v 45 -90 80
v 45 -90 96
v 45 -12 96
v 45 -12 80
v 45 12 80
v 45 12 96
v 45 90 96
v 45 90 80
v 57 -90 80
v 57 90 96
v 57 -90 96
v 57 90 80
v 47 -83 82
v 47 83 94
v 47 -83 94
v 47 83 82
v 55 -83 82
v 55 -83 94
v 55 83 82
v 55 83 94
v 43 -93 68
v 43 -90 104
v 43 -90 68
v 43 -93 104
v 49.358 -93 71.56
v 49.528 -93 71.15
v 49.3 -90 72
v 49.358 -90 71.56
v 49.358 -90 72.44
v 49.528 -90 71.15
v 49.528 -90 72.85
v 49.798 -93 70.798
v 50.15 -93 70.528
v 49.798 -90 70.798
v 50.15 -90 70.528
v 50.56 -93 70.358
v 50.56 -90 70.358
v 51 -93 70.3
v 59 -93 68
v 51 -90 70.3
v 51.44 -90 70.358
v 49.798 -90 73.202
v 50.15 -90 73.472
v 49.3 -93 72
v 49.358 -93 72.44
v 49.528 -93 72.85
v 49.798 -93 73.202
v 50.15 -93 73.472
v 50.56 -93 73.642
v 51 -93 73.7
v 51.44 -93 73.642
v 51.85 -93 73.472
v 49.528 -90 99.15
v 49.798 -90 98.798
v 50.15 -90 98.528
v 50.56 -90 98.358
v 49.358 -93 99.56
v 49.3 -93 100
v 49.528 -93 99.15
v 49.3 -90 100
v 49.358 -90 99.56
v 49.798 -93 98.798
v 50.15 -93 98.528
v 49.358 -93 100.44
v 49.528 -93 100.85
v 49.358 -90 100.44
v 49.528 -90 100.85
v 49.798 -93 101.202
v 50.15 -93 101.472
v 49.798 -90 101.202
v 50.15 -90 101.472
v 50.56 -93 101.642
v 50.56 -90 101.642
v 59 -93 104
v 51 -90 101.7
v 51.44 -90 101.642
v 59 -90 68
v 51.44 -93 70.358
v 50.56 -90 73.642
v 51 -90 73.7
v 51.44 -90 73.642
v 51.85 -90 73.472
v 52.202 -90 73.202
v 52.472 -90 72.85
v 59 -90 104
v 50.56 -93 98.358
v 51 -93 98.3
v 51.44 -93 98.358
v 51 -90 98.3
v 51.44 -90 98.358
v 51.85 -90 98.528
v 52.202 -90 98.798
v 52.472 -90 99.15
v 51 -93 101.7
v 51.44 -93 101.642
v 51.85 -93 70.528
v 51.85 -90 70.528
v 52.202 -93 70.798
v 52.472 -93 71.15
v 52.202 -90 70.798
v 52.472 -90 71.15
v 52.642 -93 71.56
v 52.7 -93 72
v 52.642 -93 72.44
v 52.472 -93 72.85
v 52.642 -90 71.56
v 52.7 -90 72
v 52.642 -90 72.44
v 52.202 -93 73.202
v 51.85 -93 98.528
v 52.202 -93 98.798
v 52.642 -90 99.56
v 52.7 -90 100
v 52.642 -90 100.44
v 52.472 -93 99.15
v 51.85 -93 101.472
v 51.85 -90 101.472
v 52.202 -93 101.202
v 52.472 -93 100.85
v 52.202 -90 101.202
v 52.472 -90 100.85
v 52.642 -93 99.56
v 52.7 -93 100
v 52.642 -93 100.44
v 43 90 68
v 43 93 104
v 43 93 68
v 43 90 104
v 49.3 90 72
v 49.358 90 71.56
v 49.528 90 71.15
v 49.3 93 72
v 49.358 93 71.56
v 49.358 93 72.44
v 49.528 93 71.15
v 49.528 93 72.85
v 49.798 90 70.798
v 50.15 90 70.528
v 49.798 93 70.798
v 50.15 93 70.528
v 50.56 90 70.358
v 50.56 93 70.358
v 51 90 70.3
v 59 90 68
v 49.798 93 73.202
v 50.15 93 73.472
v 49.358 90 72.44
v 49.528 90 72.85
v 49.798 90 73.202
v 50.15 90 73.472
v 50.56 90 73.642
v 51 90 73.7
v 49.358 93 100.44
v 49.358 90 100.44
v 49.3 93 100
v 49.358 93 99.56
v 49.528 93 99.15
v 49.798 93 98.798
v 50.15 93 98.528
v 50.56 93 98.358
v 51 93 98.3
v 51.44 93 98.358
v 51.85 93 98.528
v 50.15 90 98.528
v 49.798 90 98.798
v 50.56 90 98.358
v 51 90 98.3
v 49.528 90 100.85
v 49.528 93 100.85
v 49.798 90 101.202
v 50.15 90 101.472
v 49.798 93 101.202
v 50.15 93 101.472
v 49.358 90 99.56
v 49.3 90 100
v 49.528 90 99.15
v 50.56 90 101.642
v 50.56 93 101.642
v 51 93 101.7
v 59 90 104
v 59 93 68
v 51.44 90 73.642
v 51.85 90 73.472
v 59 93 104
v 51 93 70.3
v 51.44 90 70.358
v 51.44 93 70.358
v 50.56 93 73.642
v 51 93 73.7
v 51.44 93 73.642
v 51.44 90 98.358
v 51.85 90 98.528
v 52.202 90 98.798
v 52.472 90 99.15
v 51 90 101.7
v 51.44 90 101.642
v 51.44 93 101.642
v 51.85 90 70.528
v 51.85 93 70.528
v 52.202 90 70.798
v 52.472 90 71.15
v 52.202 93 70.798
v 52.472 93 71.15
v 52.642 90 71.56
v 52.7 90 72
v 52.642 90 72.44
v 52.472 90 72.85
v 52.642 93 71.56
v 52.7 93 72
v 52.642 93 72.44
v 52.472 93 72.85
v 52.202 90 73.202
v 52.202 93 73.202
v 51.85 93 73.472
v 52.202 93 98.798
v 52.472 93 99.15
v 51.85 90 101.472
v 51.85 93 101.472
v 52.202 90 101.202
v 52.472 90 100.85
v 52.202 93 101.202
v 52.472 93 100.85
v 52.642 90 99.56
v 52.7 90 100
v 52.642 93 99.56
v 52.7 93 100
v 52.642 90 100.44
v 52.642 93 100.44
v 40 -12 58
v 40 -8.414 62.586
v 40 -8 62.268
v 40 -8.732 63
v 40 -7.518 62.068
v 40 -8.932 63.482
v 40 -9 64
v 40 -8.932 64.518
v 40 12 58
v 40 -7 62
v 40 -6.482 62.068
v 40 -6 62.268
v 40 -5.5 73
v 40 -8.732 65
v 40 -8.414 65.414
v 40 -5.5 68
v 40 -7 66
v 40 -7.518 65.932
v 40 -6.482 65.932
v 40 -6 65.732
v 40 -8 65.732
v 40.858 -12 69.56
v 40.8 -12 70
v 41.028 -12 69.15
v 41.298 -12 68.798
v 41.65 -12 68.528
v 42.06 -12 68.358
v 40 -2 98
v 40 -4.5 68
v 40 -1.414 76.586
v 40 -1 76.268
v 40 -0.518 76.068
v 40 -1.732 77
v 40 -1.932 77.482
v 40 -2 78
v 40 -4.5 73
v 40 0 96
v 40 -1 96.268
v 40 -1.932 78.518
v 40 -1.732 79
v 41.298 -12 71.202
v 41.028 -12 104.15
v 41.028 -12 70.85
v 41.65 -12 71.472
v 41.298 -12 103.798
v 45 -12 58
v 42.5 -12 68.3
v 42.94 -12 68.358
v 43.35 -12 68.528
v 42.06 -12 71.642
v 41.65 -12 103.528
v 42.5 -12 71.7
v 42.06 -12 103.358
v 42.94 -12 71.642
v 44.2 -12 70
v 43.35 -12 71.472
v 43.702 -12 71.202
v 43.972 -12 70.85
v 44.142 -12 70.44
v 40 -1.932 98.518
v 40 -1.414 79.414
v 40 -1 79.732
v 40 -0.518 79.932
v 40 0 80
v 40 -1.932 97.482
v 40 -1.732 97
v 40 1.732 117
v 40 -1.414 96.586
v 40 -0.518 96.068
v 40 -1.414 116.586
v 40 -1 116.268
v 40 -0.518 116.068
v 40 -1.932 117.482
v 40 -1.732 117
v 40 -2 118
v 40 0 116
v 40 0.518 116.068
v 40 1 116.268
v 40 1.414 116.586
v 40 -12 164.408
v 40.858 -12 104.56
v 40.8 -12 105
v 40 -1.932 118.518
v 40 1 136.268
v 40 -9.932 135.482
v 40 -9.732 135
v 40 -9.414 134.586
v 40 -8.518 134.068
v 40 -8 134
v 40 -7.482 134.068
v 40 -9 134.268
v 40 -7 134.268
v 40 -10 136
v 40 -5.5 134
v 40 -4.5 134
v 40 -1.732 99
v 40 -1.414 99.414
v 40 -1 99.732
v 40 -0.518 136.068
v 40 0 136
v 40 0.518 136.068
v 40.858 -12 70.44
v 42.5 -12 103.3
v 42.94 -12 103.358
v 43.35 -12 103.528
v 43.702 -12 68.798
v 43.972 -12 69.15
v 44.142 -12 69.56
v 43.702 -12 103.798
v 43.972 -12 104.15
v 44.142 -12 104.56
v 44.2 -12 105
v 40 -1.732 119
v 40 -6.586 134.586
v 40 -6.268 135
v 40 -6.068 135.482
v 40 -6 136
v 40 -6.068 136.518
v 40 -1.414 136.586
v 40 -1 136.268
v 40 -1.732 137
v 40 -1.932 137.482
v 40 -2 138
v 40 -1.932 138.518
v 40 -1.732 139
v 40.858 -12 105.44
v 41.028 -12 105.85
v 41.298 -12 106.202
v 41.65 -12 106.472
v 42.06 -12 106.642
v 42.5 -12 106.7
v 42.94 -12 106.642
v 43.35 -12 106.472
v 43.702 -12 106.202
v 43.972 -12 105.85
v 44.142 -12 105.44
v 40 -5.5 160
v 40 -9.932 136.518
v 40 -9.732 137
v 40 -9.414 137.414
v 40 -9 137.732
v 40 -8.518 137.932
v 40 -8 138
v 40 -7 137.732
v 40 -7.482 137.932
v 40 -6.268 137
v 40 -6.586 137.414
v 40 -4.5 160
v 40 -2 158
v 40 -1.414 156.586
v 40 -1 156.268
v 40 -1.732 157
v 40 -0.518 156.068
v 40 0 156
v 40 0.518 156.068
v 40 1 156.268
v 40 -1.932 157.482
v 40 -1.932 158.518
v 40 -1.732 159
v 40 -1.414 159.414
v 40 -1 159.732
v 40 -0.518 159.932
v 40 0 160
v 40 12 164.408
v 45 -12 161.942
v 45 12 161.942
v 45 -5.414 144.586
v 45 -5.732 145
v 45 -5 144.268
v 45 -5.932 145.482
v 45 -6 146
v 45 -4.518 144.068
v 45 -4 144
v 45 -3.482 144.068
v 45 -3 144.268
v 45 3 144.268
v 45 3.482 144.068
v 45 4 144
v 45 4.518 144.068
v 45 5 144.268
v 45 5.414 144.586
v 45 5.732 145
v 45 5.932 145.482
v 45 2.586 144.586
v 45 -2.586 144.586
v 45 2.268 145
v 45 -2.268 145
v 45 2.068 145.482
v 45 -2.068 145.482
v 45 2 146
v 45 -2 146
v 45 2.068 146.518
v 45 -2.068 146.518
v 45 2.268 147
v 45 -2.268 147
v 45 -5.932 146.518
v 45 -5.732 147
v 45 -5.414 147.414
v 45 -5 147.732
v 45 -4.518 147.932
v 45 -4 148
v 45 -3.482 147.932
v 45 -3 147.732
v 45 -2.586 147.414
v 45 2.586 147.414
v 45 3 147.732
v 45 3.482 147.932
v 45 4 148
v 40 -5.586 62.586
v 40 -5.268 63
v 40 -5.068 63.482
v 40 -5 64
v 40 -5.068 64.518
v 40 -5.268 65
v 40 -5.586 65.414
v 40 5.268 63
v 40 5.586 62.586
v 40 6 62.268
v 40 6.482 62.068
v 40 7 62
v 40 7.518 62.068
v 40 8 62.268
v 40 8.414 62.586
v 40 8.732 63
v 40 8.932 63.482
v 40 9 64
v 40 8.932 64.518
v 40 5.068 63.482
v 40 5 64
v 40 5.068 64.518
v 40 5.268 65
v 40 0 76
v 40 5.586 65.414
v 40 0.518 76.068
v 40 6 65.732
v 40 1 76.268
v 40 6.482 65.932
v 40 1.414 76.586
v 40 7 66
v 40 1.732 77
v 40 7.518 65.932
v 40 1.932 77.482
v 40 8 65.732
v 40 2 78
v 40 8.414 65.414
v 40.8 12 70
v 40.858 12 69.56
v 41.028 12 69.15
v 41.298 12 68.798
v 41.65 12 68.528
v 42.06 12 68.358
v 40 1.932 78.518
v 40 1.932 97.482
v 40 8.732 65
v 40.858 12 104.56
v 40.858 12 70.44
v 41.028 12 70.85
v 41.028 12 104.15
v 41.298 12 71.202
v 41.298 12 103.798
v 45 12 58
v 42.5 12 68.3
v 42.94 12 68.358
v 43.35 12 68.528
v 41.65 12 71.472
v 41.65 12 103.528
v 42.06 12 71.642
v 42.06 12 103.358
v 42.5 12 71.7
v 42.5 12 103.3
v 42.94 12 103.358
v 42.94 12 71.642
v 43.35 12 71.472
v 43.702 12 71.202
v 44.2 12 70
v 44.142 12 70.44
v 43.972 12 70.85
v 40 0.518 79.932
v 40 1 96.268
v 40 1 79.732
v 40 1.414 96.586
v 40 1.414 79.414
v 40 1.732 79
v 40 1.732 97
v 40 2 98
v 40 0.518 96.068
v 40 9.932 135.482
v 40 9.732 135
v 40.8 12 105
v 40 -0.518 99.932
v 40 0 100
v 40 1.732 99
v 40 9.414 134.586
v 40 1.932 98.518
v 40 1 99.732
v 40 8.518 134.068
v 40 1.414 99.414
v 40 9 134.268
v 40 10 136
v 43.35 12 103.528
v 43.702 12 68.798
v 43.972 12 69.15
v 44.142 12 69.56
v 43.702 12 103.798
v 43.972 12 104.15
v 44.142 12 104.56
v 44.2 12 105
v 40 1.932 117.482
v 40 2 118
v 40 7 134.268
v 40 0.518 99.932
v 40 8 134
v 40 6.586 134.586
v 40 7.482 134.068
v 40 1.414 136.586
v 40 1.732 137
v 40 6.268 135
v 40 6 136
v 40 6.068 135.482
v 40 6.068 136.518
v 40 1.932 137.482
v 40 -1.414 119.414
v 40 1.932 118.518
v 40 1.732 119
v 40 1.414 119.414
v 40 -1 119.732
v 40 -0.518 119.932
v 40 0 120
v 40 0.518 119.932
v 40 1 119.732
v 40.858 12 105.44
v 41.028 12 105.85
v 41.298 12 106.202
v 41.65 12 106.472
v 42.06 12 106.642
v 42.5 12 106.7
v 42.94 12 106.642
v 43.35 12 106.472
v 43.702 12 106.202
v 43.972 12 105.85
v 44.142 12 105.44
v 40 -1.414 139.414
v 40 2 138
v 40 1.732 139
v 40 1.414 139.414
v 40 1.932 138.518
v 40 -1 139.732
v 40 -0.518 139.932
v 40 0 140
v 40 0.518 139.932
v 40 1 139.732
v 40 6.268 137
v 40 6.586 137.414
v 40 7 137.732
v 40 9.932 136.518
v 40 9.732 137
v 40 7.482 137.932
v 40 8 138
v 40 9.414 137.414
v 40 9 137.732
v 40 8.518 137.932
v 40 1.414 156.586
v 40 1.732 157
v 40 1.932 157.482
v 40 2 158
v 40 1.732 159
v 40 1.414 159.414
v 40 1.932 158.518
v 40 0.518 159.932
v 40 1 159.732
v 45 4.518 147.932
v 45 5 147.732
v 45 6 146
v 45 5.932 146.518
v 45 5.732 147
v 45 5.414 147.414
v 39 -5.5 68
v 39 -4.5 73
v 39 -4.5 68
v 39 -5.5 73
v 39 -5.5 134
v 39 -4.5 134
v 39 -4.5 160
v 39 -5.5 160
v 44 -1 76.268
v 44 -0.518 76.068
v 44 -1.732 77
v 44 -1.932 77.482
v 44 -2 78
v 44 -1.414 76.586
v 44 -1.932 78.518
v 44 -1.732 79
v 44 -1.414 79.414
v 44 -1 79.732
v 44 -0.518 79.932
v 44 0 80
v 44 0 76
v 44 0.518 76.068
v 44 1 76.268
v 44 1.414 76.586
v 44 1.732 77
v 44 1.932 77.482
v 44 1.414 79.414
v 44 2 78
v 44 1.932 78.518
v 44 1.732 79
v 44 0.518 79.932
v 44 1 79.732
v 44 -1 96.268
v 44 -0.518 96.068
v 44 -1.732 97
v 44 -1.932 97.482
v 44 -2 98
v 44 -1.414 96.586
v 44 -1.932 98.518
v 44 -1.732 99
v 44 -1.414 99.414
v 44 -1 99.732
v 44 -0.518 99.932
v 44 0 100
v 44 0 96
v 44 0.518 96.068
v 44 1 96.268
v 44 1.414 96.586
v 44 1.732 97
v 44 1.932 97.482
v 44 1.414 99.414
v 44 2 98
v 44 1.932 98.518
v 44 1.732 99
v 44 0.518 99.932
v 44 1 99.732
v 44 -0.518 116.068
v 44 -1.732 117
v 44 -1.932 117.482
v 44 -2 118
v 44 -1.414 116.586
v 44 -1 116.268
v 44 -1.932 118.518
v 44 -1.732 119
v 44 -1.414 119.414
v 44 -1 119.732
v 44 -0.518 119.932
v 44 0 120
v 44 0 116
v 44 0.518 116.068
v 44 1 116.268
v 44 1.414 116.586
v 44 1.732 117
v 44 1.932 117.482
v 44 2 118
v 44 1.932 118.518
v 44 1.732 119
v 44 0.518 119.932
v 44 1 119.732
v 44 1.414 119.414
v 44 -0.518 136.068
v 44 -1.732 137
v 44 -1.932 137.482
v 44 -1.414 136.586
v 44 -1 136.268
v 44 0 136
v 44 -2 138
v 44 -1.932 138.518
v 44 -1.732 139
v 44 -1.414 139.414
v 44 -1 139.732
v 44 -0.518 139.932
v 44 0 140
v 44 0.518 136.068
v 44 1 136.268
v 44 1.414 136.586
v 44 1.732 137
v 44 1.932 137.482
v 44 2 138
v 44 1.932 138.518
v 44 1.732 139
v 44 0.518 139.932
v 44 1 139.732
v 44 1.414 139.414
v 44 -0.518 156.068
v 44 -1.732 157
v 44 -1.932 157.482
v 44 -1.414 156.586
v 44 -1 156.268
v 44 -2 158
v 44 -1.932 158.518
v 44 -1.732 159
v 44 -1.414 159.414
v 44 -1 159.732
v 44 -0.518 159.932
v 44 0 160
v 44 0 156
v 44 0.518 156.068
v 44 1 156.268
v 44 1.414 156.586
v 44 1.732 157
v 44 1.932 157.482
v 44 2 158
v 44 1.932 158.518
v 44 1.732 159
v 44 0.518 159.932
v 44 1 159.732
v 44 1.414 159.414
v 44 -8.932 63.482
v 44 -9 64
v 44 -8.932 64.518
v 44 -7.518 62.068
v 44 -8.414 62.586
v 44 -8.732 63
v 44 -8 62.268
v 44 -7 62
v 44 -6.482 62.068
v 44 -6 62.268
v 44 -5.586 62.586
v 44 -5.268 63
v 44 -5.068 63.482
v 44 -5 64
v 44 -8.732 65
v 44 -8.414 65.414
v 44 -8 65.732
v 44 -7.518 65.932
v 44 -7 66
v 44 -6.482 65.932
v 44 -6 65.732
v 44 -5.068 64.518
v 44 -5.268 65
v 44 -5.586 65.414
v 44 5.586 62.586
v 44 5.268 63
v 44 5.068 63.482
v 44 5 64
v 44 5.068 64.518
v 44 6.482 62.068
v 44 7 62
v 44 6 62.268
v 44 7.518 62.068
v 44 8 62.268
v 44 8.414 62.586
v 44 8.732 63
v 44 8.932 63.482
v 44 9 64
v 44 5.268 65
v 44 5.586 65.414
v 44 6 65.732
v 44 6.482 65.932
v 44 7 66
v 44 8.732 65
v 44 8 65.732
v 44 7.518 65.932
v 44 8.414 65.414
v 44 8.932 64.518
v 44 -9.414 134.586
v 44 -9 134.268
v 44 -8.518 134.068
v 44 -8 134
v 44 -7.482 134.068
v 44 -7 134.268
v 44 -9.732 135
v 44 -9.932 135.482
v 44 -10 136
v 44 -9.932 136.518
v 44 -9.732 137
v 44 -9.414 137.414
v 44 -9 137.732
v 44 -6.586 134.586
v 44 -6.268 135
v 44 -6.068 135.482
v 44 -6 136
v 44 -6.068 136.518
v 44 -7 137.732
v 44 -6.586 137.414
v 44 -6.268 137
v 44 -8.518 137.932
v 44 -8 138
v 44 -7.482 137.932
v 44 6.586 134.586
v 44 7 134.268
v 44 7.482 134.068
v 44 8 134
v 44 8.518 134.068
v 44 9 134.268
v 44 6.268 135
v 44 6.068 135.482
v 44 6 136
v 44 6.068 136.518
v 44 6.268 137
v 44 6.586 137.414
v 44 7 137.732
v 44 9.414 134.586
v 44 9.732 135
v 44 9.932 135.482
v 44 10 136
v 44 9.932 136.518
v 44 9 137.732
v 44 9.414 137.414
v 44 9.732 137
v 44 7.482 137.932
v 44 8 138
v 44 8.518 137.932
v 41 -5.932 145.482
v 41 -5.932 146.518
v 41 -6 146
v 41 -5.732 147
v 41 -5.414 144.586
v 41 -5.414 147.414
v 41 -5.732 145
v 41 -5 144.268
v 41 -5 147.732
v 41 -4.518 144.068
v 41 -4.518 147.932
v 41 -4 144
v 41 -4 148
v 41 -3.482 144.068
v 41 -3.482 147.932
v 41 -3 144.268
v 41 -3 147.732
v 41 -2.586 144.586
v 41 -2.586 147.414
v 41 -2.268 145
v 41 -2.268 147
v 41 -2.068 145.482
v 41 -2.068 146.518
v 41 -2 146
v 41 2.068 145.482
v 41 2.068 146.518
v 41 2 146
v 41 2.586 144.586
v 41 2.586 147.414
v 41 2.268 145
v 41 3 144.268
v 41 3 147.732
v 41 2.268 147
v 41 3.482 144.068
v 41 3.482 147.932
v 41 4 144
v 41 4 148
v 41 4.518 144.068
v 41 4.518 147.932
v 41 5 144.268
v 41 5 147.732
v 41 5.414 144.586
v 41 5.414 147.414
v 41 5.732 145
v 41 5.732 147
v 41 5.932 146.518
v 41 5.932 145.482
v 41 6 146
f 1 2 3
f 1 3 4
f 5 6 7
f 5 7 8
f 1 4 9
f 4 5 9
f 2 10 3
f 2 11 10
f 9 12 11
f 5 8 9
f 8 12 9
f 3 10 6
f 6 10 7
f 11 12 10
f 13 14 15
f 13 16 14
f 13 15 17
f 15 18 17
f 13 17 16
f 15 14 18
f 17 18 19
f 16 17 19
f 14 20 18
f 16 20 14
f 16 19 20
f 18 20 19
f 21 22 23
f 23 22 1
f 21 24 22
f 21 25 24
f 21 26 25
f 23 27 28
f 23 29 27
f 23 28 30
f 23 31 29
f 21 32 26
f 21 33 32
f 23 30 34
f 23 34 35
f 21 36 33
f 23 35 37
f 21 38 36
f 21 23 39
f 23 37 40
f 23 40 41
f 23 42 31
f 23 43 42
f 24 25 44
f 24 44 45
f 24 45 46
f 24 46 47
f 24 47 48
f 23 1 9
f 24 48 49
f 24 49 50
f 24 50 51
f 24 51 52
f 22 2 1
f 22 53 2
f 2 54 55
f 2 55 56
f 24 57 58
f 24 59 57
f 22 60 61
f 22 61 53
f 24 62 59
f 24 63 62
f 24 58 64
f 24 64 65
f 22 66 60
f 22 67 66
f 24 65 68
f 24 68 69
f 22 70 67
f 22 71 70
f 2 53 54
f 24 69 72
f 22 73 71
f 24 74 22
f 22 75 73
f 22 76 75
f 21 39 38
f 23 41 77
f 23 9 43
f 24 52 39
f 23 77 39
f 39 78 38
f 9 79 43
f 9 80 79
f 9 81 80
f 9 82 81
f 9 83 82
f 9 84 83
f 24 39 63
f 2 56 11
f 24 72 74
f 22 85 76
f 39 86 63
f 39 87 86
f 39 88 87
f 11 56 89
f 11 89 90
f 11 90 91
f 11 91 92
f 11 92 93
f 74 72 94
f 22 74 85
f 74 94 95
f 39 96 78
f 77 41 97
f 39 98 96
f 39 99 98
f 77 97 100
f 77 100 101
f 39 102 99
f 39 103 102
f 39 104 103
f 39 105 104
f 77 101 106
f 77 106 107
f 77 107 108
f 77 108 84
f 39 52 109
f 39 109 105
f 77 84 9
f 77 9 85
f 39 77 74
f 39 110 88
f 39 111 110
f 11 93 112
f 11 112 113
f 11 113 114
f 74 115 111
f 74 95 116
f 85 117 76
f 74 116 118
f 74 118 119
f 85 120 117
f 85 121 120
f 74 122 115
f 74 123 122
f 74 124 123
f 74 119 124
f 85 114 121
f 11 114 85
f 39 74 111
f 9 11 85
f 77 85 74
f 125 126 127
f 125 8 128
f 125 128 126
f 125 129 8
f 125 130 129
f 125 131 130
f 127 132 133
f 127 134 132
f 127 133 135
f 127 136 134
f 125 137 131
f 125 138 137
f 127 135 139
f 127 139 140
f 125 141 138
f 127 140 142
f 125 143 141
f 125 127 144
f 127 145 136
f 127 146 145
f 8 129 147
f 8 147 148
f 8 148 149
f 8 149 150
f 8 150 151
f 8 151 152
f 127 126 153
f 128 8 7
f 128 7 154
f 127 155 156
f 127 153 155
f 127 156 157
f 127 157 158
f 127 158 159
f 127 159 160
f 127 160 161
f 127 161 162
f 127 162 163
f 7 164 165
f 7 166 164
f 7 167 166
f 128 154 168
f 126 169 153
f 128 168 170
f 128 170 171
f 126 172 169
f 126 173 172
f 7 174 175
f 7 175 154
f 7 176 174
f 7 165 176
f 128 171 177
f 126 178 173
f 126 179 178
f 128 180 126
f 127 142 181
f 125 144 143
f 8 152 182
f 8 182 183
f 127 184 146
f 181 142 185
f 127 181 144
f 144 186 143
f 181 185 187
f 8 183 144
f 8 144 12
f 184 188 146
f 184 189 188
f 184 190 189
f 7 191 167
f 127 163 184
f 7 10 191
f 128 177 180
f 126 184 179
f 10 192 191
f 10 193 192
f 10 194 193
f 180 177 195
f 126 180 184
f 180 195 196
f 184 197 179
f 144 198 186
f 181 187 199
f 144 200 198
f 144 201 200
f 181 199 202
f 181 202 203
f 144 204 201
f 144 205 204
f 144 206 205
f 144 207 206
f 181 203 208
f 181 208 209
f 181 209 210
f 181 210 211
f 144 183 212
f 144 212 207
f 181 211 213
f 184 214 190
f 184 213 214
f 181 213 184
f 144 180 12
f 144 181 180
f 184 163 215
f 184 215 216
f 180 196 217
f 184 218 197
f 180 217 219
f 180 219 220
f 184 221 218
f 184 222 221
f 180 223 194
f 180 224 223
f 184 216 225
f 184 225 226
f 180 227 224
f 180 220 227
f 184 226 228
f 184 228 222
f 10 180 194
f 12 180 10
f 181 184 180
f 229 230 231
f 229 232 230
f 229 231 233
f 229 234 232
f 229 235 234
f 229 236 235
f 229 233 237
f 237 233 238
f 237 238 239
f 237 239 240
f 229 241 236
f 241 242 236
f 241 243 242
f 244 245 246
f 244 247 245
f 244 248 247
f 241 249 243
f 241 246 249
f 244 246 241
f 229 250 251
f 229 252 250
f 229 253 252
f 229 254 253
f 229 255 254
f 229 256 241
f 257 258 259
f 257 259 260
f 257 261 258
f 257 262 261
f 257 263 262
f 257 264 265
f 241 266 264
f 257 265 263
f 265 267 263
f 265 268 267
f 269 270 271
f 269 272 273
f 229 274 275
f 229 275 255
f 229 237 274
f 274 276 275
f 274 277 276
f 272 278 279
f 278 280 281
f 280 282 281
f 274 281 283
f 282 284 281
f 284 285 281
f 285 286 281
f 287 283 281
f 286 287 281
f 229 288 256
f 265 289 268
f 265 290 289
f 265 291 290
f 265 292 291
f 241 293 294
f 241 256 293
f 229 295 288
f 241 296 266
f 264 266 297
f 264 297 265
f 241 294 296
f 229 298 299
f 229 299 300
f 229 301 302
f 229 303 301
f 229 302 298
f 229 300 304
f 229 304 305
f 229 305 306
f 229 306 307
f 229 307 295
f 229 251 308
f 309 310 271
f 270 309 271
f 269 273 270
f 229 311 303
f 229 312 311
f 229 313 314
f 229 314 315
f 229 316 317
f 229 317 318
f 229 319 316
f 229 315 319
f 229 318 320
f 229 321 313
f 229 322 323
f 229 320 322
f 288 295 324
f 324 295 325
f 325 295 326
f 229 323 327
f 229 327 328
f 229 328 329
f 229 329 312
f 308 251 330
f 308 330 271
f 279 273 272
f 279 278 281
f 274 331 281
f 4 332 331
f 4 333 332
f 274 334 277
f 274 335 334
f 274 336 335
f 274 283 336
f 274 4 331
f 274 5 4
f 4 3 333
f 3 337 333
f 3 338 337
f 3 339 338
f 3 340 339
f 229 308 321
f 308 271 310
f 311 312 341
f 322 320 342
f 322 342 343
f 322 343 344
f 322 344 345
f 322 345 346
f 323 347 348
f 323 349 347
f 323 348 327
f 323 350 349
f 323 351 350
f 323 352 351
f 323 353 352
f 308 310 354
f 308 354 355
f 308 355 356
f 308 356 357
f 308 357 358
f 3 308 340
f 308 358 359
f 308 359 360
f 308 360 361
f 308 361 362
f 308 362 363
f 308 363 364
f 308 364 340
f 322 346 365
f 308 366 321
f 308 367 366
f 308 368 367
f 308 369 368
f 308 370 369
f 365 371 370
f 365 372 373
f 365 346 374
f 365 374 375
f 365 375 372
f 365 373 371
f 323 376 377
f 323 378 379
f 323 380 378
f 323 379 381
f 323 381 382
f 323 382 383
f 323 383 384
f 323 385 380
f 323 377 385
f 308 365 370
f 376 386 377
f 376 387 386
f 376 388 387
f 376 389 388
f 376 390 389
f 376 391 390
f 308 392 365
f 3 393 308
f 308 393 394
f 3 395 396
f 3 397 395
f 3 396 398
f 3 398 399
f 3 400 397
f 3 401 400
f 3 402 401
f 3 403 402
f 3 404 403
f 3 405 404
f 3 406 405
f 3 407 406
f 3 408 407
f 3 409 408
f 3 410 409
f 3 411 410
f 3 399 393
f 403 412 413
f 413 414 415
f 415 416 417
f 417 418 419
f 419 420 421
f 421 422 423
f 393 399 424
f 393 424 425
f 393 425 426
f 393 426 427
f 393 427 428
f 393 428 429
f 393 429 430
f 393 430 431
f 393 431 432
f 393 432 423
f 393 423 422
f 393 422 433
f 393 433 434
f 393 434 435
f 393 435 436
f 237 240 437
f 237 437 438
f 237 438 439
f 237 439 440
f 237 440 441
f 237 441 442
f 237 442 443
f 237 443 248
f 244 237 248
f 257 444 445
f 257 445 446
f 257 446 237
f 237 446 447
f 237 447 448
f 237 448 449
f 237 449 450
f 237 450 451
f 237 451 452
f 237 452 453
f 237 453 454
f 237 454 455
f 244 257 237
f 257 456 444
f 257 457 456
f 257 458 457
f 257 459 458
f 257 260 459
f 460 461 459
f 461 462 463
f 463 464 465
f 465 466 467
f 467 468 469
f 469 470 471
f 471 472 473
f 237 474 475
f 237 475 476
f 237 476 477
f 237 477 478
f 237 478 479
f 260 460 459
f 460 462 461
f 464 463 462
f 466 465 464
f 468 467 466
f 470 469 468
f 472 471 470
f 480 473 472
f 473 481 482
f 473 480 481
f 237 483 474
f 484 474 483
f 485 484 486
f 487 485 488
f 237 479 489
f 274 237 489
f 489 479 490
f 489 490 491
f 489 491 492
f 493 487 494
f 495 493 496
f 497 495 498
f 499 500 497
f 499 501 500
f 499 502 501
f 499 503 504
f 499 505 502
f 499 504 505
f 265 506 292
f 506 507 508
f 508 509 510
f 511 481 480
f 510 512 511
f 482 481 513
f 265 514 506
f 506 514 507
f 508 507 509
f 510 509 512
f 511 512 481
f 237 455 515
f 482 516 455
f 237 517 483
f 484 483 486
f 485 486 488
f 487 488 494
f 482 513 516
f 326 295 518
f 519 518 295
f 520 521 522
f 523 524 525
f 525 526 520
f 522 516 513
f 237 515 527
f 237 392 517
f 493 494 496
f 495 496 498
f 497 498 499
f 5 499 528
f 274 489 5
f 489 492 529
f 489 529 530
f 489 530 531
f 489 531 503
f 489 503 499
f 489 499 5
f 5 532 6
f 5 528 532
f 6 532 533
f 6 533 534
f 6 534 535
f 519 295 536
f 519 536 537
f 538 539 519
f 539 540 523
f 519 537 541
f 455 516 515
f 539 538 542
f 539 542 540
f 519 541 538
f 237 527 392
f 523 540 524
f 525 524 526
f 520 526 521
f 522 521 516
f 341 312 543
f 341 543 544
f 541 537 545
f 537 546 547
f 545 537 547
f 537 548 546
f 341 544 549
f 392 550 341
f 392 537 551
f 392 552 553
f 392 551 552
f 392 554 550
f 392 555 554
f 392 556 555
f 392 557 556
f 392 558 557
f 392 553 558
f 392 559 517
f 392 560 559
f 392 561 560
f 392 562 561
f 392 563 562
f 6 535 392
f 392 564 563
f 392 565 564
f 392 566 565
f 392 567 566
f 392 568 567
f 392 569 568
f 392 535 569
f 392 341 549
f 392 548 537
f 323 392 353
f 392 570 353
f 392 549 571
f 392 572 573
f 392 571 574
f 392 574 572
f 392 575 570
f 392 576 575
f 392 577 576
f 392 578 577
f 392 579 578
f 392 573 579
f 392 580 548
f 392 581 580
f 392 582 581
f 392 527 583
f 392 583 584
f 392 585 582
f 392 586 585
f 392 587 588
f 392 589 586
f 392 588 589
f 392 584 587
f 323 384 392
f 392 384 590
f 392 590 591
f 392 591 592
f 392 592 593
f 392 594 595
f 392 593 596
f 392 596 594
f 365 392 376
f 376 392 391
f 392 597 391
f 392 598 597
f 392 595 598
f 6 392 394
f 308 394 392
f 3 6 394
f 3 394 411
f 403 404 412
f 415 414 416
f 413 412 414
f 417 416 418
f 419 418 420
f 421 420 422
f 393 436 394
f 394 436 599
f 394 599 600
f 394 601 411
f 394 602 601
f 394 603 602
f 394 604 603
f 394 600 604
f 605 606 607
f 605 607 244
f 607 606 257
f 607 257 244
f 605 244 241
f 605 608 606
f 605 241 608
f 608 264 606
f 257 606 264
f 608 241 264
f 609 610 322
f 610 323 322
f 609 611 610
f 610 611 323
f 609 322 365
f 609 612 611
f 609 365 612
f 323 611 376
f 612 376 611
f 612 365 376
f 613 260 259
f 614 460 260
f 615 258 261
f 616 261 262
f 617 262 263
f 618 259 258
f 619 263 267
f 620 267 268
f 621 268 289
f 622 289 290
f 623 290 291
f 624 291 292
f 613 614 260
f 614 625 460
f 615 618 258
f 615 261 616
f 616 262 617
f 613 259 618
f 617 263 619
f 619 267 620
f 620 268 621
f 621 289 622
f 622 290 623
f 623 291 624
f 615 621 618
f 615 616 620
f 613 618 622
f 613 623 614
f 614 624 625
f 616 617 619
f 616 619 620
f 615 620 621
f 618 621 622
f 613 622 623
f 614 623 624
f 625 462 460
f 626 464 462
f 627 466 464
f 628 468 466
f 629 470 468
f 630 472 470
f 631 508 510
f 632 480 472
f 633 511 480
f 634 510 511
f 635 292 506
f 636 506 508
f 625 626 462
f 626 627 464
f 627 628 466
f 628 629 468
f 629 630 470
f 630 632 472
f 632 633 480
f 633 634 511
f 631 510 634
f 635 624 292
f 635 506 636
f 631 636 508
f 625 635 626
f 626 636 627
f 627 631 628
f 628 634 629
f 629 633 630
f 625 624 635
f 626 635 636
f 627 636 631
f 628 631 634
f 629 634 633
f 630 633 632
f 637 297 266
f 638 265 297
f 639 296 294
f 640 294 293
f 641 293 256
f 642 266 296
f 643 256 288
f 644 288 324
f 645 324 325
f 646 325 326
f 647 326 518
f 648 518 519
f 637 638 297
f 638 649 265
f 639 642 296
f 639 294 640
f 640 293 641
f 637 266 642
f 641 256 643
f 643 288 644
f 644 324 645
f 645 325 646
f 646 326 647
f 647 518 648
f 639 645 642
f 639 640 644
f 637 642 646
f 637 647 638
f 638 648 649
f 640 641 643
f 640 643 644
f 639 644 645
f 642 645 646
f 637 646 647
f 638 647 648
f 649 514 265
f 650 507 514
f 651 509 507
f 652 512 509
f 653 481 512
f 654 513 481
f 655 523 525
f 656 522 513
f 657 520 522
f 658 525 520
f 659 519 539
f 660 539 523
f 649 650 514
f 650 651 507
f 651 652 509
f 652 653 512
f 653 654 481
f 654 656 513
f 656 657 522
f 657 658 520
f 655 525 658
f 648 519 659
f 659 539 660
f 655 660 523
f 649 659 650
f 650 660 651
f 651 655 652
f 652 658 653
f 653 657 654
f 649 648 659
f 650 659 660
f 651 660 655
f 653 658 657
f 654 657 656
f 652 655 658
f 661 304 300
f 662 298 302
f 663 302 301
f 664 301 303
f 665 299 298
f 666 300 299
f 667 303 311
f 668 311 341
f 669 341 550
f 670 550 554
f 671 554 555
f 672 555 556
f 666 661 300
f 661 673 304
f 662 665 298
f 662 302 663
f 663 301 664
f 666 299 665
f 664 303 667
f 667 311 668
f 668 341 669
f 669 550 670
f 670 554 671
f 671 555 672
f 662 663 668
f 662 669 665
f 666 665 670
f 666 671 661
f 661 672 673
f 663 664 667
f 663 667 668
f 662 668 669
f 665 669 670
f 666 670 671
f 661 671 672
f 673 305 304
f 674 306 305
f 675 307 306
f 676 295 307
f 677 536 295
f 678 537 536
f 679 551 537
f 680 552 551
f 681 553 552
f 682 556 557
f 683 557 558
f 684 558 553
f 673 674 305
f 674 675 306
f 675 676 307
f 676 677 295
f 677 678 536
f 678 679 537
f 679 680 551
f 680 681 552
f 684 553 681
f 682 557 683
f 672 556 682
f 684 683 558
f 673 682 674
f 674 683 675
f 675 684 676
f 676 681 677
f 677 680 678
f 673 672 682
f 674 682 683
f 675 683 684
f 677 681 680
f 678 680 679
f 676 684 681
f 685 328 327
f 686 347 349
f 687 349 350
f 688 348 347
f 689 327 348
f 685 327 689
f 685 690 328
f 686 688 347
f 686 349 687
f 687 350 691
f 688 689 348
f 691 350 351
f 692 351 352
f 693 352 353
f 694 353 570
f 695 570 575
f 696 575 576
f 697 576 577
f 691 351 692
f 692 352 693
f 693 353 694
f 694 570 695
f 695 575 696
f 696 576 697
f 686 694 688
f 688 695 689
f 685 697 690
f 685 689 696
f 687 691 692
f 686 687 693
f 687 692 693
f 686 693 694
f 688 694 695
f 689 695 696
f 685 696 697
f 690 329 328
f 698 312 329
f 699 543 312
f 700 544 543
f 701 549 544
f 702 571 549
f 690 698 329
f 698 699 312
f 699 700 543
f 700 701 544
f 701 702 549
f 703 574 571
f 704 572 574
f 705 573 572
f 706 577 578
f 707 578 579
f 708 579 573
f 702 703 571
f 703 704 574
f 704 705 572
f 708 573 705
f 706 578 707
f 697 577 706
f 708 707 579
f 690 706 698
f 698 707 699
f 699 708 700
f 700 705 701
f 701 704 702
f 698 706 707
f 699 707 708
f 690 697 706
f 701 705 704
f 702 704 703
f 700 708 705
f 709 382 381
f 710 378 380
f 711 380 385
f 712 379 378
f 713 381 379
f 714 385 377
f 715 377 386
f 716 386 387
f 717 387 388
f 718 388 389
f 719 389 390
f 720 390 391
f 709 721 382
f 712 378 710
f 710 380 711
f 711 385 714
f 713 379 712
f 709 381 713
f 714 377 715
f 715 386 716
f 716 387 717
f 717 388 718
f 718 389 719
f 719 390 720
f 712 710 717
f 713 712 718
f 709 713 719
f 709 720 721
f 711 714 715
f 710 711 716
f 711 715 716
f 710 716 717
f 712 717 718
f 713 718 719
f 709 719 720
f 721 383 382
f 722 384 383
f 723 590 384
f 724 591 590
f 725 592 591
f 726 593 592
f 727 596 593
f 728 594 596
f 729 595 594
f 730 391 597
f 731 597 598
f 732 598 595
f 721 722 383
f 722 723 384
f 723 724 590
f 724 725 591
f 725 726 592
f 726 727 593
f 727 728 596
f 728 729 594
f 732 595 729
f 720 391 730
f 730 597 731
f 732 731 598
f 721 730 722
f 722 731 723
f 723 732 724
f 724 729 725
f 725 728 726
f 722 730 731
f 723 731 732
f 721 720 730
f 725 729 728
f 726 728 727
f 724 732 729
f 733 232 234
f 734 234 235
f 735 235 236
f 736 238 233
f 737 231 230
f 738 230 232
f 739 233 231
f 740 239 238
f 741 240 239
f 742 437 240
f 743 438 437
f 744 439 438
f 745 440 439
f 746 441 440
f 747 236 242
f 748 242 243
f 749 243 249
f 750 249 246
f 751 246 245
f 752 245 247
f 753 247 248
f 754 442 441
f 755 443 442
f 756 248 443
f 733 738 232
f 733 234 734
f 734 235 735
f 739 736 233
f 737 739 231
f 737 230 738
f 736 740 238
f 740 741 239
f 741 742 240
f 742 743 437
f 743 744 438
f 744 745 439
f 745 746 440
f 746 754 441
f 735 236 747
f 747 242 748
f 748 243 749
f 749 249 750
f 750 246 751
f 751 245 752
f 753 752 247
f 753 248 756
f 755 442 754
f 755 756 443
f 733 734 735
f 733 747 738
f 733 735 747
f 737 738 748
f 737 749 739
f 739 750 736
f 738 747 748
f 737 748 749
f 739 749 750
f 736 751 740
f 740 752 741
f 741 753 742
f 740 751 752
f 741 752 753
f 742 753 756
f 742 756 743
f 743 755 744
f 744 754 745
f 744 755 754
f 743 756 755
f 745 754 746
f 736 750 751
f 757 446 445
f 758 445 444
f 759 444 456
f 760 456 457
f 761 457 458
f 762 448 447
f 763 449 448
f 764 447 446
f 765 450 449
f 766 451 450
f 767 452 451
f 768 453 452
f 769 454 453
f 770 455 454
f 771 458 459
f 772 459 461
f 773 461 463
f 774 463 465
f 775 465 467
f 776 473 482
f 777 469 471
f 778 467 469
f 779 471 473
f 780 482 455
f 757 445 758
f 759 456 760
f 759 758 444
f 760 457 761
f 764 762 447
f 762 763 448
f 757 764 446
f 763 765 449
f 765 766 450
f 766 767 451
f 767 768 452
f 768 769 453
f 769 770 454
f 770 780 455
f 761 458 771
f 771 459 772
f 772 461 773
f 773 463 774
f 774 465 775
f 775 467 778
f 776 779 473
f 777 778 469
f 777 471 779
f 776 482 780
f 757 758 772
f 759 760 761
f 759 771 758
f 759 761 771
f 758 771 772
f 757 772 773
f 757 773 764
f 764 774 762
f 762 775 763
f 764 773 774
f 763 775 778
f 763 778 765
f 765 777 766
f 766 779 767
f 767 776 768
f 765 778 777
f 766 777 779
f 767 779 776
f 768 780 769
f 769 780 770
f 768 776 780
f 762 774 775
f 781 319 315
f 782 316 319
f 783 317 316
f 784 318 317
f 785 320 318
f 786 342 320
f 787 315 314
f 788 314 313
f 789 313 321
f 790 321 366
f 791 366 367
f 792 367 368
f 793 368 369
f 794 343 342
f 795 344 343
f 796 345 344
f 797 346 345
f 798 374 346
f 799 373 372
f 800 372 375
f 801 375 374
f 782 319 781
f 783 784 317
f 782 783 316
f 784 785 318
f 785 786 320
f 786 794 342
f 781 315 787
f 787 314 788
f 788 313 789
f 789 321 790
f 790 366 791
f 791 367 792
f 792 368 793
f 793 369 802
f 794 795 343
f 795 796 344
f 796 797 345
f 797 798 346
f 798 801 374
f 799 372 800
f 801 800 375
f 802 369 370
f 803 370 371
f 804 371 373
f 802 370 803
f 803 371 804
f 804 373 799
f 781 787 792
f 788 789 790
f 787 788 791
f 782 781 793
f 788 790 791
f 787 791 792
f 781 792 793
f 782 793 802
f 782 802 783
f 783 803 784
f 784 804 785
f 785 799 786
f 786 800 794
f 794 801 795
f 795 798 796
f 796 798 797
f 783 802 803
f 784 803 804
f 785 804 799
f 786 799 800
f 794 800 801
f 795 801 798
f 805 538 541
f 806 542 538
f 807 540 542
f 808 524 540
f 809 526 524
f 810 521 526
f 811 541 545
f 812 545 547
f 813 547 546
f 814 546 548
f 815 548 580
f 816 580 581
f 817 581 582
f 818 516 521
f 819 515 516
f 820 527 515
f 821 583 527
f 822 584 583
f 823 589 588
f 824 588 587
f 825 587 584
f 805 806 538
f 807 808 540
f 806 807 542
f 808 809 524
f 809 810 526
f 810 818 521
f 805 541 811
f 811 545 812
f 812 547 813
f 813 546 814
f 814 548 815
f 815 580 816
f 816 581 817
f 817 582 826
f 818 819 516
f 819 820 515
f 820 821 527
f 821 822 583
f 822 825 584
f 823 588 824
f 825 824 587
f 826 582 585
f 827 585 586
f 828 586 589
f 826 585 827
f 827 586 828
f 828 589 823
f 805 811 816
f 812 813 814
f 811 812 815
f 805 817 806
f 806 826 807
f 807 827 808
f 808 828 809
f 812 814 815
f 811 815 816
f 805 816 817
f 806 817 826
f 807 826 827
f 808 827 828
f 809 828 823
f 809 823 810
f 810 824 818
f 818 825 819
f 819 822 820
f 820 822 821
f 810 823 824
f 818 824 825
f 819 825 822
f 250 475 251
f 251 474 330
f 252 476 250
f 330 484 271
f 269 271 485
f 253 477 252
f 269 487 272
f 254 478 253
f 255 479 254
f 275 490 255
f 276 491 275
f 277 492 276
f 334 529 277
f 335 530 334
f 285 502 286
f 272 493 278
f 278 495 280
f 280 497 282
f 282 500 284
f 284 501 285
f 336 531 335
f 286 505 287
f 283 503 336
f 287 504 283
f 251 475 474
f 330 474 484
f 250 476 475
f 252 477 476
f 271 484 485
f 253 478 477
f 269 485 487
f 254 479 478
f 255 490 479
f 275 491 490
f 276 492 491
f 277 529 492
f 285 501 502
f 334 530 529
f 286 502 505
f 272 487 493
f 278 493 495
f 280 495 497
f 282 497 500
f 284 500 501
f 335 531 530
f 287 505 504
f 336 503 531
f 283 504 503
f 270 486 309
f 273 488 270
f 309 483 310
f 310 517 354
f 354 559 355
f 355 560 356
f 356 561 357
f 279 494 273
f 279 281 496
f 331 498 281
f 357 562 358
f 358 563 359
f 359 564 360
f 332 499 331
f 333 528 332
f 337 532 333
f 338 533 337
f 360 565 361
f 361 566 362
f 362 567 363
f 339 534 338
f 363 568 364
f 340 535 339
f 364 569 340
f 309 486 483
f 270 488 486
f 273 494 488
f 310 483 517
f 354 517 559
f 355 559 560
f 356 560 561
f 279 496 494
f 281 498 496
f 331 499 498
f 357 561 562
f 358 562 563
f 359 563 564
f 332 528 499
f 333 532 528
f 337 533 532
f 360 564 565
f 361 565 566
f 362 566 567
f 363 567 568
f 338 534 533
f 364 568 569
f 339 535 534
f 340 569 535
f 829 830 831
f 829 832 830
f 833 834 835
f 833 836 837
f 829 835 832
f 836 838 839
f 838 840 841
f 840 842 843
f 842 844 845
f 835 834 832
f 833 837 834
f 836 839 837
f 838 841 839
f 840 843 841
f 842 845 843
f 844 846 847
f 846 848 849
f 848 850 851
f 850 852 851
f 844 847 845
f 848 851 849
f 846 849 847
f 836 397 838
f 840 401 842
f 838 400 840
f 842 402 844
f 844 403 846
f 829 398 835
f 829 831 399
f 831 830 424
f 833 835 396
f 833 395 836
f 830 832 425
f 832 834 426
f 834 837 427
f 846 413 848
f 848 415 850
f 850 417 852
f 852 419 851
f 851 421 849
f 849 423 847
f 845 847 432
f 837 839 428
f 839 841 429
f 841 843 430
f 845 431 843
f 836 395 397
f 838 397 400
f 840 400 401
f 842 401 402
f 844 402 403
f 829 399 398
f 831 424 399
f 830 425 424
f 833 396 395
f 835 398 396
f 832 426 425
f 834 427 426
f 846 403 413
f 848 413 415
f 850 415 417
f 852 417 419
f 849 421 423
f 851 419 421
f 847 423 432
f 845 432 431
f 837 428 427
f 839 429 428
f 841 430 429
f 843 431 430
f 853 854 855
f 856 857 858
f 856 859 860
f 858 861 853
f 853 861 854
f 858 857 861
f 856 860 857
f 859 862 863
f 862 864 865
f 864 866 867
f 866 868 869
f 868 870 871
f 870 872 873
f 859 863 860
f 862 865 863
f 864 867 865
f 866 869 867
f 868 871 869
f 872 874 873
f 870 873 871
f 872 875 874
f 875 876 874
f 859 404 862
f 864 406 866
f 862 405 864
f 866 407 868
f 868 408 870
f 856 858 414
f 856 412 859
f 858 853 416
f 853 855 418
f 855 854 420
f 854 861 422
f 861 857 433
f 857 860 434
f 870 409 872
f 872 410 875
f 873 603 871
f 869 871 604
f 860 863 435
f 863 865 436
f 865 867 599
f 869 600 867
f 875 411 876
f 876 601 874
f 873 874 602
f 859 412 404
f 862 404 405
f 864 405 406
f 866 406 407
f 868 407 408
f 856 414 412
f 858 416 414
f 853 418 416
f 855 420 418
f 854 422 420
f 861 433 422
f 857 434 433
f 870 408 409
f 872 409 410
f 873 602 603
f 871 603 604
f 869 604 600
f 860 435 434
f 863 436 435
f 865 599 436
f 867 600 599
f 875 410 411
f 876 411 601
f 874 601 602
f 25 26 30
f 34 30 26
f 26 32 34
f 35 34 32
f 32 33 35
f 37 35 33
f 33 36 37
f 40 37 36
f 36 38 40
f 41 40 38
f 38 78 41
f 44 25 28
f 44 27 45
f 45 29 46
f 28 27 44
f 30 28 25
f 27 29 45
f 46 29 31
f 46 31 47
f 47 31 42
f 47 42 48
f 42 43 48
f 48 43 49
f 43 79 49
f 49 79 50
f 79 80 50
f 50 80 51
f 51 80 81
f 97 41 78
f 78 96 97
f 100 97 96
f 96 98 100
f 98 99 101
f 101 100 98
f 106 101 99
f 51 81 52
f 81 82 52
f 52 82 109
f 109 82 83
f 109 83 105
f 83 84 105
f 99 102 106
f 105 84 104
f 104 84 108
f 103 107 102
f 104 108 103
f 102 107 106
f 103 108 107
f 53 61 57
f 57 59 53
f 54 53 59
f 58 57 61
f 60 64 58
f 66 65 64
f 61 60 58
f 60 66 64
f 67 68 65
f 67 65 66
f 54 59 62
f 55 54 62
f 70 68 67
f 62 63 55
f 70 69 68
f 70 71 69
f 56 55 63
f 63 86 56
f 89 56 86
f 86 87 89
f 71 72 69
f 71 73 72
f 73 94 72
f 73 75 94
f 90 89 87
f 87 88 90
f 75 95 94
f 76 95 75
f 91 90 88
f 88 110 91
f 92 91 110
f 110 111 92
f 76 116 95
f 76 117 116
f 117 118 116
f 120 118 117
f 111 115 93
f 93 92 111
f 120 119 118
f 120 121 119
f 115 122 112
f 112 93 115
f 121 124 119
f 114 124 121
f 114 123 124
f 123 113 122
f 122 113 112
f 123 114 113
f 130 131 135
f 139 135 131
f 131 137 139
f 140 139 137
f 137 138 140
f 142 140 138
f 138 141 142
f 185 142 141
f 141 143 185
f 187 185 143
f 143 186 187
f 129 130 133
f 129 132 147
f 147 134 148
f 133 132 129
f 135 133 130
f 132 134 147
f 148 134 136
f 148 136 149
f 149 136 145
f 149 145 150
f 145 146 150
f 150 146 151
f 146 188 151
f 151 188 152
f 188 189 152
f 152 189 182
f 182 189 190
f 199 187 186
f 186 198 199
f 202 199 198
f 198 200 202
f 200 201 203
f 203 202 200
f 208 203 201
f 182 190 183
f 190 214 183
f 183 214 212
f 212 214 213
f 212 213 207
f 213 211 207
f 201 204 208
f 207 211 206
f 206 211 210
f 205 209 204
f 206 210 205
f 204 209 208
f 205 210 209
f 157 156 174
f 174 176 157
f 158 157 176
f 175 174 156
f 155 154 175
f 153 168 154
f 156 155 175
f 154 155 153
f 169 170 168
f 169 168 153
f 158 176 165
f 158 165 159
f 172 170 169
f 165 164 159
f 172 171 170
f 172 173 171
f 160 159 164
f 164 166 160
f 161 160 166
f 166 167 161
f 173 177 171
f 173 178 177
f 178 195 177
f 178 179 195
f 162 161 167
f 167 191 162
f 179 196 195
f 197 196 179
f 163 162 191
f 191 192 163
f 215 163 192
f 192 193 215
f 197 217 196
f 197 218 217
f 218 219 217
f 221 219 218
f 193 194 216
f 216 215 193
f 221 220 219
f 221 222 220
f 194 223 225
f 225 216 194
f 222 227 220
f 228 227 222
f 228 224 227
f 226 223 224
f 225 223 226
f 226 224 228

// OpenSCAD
// =====================================================================
//  p21_yoke_crossbar.scad - P21 yoke crossbar with the rail mast
//  PROJECT SCRATCH · 05-engineering/cad/frame · units: mm · frame: global (section 2)
//  Sources: mechanical.md section 6.1 (box beam X 45..57, Z 80..96, 2 mm walls; mast 24 wide x 5 thick, X 40..45,
//  from Z 64 to an R 90 arc about the elbow axis; MGN9 rail on the -X face Z 68..168, 5 M3 inserts at 20 pitch;
//  1 mm reference lip on the -Y edge), 6.3 (down-stop P23 at Z 60..68, up-stop P24 at +28), 6.4/6.7, 11 P21.
//  Beam length 186 between the cheeks' inner faces (section 11's 196 counts the 5 mm cheeks: C-Y2); 3 mm end
//  plates with 2 holes each bolt to the cheek inserts.  Mast starts at Z 58 so the down-stop block can be screwed
//  to it (C-Y3).  Lip in two short segments outside the carriage travel (MGN9C underside clearance H1 ~1 mm [VERIFY]).
//  Print mast face down (the mast's -X face on the bed), beam along the bed's X.  Bed >= 190 mm.
// =====================================================================
include <lib_sp1.scad>

BAR_X0 = 45;  BAR_X1 = 57;  BAR_Z0 = 80;  BAR_Z1 = 96;  BAR_Y = 93;  WALL = 2;  PLUG_L = 10;
END_T = 3;  END_Z0 = 68;  END_Z1 = 104;  END_X0 = 43;  END_X1 = 59;  END_HOLES = [[51, 72], [51, 100]];
MAST_X0 = 40;  MAST_X1 = 45;  MAST_Y = 12;  MAST_Z0 = 58;  MAST_ARC_R = 90;
LIP_Y0 = -5.5;  LIP_Y1 = -4.5;  LIP_X = 1;  LIP_Z = [[68, 73], [134, 160]];
RAIL_INS_Z = [78, 98, 118, 138, 158];                        // = rail holes 10 + 20 k from the rail end at Z 68 [VERIFY]
DOWNSTOP_INS = [[-7, 64], [7, 64]];  UPSTOP_INS = [[-8, 136], [8, 136]];
SHROUD_THRU_Z = [70, 105];  SHROUD_THRU_X = 42.5;
CLEAT_INS = [[-4, 146], [4, 146]];

module mast_profile() intersection() {               // (x, z)
    translate([MAST_X0, MAST_Z0]) square([MAST_X1 - MAST_X0, AXIS_Z + MAST_ARC_R + 1 - MAST_Z0]);
    translate([AXIS_X, AXIS_Z]) circle(MAST_ARC_R, $fn = FN);
}

module p21_yoke_crossbar() difference() {
    union() {
        difference() {                                                                 // box beam, solid plugs at the ends
            box(BAR_X0, BAR_X1, -BAR_Y, BAR_Y, BAR_Z0, BAR_Z1);
            box(BAR_X0 + WALL, BAR_X1 - WALL, -BAR_Y + PLUG_L, BAR_Y - PLUG_L, BAR_Z0 + WALL, BAR_Z1 - WALL);
        }
        for (s = [-1, 1]) box(END_X0, END_X1, min(s * BAR_Y, s * (BAR_Y - END_T)), max(s * BAR_Y, s * (BAR_Y - END_T)), END_Z0, END_Z1);
        ext_y(-MAST_Y, MAST_Y) mast_profile();                                         // mast
        box(MAST_X1 - 0.01, MAST_X1 + 1, -MAST_Y, MAST_Y, BAR_Z0, BAR_Z1);             // 1 mm into the beam wall
        for (lz = LIP_Z) ext_y(LIP_Y0, LIP_Y1) intersection() {                        // rail reference lip (arc-clipped)
            translate([MAST_X0 - LIP_X, lz[0]]) square([LIP_X + 0.01, lz[1] - lz[0]]);
            translate([AXIS_X, AXIS_Z]) circle(MAST_ARC_R, $fn = FN);
        }
    }
    for (z = RAIL_INS_Z) ins_x(M3_INS_D, M3_INS_L, 0, z, MAST_X0, 1);                 // rail inserts, -X face
    for (h = concat(DOWNSTOP_INS, UPSTOP_INS)) ins_x(M3_INS_D, M3_INS_L, h[0], h[1], MAST_X0, 1);
    for (z = SHROUD_THRU_Z) cyl_y(M3_CLEAR / 2, -MAST_Y - 1, MAST_Y + 1, SHROUD_THRU_X, z, fn = 24);   // shroud through-screws
    for (h = CLEAT_INS) ins_x(M3_INS_D, M3_INS_L, h[0], h[1], MAST_X1, -1);           // trim cleat, +X face
    for (s = [-1, 1]) for (h = END_HOLES) cyl_y(M3_CLEAR / 2, min(s * (BAR_Y + 1), s * (BAR_Y - END_T - 1)), max(s * (BAR_Y + 1), s * (BAR_Y - END_T - 1)), h[0], h[1], fn = 24);
}

p21_yoke_crossbar();
